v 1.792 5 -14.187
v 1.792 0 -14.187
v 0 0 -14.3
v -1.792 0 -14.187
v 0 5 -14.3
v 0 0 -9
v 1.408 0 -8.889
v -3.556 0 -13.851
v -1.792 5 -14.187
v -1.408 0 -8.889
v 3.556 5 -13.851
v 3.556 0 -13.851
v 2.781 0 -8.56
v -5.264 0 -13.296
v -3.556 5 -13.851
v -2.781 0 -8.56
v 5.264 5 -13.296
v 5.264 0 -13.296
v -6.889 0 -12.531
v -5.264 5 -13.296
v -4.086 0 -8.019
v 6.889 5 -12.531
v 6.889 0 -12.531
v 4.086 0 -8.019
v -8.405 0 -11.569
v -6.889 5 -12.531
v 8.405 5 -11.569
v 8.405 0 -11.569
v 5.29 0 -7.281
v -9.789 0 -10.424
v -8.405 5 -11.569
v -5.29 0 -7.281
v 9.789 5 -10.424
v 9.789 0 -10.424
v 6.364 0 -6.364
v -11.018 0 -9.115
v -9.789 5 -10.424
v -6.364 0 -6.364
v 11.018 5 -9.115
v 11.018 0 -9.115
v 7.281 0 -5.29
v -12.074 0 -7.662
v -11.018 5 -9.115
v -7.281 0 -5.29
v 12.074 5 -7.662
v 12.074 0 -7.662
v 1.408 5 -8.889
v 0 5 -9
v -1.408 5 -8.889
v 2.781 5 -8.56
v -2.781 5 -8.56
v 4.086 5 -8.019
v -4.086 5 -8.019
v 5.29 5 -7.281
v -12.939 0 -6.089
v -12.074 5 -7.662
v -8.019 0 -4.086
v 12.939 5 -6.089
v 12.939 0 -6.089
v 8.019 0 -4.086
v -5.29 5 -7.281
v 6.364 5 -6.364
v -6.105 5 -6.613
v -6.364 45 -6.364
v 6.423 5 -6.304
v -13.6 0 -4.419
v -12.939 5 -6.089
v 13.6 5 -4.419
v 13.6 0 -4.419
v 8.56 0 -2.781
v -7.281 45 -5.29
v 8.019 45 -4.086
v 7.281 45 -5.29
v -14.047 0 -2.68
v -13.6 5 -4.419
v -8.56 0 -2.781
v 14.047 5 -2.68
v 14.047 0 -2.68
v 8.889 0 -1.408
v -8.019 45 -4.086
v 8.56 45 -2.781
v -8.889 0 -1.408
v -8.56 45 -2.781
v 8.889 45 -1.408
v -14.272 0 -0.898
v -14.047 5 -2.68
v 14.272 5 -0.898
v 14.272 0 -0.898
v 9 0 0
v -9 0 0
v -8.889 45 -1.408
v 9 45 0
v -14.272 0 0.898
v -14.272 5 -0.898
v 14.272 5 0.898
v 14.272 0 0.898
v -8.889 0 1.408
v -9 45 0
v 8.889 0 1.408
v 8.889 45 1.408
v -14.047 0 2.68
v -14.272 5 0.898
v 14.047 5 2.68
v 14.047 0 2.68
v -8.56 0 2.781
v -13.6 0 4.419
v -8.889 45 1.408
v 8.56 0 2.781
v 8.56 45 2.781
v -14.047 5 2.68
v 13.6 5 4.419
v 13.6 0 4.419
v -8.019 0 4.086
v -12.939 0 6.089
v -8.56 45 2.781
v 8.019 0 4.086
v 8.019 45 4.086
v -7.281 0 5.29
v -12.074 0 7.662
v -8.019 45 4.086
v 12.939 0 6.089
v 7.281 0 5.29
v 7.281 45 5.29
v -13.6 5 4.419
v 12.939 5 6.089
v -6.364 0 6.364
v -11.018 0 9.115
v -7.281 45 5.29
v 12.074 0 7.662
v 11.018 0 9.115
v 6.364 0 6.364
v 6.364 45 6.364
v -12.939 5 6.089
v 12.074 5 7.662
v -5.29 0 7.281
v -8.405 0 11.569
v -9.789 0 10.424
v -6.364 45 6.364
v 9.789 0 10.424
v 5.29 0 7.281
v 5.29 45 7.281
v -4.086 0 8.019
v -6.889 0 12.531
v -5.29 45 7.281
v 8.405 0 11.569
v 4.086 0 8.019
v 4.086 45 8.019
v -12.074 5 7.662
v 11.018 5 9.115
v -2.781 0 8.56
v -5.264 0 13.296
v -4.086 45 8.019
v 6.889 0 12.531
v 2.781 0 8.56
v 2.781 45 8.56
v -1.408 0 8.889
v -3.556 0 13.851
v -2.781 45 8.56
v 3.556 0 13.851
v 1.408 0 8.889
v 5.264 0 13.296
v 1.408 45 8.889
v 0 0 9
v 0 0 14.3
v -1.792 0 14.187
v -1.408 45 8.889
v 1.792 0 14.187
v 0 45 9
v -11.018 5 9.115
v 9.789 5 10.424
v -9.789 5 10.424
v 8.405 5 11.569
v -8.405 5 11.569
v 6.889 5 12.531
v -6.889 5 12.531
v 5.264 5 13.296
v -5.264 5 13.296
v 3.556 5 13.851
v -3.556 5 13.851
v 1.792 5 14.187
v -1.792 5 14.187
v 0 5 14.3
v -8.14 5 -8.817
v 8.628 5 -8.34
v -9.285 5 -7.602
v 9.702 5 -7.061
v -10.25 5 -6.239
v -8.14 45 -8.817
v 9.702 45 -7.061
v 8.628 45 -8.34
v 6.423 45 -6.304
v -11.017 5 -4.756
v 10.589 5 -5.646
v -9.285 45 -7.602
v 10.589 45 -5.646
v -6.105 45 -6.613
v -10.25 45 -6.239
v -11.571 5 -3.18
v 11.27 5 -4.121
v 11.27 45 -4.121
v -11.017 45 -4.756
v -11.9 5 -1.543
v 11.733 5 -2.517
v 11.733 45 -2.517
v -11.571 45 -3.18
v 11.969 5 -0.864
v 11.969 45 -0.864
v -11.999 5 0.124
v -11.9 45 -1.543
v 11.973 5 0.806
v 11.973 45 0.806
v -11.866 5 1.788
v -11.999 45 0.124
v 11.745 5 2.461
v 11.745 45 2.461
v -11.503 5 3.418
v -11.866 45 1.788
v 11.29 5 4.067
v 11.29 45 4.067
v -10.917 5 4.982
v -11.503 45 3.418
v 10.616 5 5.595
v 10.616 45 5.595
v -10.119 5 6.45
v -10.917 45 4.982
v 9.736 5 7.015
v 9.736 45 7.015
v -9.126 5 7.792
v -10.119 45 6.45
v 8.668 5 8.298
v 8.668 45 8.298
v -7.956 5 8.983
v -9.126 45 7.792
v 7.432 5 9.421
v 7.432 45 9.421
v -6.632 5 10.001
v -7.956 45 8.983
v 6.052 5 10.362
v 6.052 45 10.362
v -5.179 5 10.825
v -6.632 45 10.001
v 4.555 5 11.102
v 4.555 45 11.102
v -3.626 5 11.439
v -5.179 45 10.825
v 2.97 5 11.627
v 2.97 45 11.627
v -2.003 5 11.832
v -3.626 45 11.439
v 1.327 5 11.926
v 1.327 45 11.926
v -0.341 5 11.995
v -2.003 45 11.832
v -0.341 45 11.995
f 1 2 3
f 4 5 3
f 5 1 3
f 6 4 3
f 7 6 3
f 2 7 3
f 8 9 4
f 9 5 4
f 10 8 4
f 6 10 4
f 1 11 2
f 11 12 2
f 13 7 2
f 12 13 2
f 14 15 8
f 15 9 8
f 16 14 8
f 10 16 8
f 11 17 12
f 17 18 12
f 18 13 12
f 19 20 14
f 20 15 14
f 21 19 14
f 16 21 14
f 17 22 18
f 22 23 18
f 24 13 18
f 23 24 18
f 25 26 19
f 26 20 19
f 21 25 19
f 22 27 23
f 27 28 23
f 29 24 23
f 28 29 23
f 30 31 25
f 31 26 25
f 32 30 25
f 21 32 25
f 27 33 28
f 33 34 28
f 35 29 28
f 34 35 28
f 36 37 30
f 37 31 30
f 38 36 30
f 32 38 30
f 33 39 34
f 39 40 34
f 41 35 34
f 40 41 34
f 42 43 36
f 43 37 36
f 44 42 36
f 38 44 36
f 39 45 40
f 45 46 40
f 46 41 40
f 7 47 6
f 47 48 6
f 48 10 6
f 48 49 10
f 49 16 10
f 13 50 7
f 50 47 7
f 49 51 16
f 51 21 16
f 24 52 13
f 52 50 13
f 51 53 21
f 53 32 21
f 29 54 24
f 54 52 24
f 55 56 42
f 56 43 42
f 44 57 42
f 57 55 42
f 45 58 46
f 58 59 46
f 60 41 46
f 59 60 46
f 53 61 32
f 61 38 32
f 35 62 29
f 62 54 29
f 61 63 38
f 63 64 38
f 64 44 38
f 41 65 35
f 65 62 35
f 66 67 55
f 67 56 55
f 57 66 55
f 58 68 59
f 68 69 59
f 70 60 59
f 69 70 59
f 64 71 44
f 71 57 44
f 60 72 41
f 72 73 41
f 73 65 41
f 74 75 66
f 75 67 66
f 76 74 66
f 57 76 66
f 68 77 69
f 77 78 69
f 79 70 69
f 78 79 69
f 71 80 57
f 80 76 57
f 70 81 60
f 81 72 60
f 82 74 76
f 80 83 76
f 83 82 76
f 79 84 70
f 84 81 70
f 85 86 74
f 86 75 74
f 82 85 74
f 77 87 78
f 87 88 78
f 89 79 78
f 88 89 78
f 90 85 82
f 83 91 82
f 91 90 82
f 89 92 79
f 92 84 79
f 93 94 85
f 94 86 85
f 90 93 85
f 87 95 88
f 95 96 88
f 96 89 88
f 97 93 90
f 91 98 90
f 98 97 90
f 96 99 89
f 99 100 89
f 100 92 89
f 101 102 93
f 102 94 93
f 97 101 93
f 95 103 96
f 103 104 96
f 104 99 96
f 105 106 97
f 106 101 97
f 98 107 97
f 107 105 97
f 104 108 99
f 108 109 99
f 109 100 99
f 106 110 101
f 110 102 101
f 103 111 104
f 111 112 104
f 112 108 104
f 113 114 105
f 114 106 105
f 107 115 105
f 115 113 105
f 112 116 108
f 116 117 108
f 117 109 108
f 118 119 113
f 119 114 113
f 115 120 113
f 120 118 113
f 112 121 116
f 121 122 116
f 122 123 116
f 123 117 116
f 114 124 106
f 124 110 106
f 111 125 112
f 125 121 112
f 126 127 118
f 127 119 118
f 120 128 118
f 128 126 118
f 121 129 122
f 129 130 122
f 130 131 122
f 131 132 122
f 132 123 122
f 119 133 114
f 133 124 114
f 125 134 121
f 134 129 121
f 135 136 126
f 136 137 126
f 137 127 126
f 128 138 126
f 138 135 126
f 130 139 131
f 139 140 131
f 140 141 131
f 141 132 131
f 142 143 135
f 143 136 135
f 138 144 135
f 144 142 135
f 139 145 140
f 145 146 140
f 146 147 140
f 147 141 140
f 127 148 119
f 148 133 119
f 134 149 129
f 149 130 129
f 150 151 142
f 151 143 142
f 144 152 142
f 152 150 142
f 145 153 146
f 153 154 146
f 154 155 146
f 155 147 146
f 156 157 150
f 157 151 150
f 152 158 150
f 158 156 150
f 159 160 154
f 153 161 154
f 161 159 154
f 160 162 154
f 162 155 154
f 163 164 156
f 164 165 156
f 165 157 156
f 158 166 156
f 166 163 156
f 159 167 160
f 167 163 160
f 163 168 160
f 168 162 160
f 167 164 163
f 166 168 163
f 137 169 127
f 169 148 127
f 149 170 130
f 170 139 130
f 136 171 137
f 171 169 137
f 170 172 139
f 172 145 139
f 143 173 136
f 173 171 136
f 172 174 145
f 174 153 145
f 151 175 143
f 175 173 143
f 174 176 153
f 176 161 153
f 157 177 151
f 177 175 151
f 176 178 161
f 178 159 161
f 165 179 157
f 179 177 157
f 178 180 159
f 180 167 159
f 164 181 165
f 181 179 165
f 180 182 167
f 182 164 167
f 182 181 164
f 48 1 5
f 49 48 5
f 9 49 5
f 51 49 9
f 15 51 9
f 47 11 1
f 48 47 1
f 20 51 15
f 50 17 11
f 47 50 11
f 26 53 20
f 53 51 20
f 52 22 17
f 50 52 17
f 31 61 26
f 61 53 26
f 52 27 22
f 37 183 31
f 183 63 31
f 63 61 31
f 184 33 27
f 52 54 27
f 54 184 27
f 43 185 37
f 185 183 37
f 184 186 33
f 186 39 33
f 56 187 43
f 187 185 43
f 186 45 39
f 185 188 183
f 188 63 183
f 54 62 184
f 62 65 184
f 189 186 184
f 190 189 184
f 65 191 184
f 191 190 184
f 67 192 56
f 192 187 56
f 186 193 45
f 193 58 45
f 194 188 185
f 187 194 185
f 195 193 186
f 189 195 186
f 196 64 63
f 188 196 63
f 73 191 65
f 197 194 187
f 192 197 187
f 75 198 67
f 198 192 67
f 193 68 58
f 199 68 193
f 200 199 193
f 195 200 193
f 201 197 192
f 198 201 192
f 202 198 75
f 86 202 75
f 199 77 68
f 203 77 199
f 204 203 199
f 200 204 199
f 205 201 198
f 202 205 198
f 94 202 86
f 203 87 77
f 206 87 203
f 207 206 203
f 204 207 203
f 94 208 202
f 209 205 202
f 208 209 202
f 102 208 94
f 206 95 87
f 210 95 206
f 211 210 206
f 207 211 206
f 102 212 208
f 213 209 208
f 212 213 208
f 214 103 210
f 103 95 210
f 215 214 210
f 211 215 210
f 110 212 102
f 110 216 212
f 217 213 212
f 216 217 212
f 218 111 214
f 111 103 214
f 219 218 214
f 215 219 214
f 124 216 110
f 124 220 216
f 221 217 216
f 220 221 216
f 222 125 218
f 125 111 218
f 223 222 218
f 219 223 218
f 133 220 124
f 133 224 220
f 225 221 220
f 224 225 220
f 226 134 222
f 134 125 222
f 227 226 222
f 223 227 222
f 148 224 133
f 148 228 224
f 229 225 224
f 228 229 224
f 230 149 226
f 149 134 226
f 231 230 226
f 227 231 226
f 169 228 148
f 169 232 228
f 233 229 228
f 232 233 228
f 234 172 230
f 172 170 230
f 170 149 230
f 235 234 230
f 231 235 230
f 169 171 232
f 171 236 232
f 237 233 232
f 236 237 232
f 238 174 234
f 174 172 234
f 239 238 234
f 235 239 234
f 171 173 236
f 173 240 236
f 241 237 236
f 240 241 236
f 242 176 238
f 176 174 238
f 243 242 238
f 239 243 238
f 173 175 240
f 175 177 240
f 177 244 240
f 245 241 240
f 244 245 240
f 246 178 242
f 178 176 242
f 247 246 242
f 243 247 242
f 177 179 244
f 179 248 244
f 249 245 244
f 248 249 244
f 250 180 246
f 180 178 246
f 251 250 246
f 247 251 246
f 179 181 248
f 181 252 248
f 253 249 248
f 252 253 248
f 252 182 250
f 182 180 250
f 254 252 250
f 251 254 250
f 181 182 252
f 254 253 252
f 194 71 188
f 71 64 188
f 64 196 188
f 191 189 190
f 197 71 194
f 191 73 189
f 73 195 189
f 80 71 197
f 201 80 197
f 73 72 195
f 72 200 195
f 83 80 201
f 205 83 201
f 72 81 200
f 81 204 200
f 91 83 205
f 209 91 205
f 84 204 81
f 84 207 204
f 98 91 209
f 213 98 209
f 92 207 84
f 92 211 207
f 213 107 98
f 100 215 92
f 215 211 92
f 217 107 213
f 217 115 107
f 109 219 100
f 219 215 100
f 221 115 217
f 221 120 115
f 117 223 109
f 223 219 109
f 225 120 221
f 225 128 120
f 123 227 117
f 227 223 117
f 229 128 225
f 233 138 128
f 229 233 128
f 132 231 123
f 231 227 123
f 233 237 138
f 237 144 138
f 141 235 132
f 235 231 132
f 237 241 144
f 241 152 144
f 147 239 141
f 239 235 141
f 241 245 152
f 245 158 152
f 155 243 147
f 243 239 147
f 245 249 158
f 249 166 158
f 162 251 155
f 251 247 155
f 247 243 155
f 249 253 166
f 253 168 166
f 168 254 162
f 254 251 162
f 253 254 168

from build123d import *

# Parameters (mm, degrees)
SKETCH1_R           = 14.3
BOSS_EXTRUDE1_DEPTH = 5
SKETCH2_R           = 12
BOSS_EXTRUDE2_DEPTH = 45
SKETCH3_R           = 9
CUT_EXTRUDE1_DEPTH  = 50.33538284
CUT_EXTRUDE3_DEPTH  = 40


with BuildPart() as part:
    # Sketch1 → Boss-Extrude1 (new body)
    with BuildSketch(Plane(origin=(0, 0, 0), x_dir=(1, 0, 0), z_dir=(0, 1, 0))):
        with Locations(Location((0, 0, 0), (0, 0, 270))):
            Circle(SKETCH1_R)
    extrude(amount=BOSS_EXTRUDE1_DEPTH)

    # Sketch2 → Boss-Extrude2 (add)
    with BuildSketch(Plane.XZ):
        with Locations(Location((0, 0, 0), (0, 0, 270))):
            Circle(SKETCH2_R)
    extrude(amount=-BOSS_EXTRUDE2_DEPTH)

    # Sketch3 → Cut-Extrude1 (cut, through all)
    with BuildSketch(Plane(origin=(0, 45, 0), x_dir=(1, 0, 0), z_dir=(0, 1, 0))):
        with Locations(Location((0, 0, 0), (0, 0, 270))):
            Circle(SKETCH3_R)
    extrude(amount=-CUT_EXTRUDE1_DEPTH, mode=Mode.SUBTRACT)

    # Sketch4 → Cut-Extrude3 (cut)
    with BuildSketch(Plane(origin=(0, 45, 0), x_dir=(1, 0, 0), z_dir=(0, 1, 0))):
        with BuildLine():
            Line((-8.842350879, 9.578144326), (-2.340207376, 2.534941703))
            ThreePointArc((-2.340207376, 2.534941703), (0, 3.45), (2.340207376, 2.534941703))
            Line((2.340207376, 2.534941703), (9.389352033, 9.042570774))
            ThreePointArc((9.389352033, 9.042570774), (0.382769282, 13.030023234), (-8.842350879, 9.578144326))
        make_face()
    extrude(amount=-CUT_EXTRUDE3_DEPTH, mode=Mode.SUBTRACT)


solid = part.part
